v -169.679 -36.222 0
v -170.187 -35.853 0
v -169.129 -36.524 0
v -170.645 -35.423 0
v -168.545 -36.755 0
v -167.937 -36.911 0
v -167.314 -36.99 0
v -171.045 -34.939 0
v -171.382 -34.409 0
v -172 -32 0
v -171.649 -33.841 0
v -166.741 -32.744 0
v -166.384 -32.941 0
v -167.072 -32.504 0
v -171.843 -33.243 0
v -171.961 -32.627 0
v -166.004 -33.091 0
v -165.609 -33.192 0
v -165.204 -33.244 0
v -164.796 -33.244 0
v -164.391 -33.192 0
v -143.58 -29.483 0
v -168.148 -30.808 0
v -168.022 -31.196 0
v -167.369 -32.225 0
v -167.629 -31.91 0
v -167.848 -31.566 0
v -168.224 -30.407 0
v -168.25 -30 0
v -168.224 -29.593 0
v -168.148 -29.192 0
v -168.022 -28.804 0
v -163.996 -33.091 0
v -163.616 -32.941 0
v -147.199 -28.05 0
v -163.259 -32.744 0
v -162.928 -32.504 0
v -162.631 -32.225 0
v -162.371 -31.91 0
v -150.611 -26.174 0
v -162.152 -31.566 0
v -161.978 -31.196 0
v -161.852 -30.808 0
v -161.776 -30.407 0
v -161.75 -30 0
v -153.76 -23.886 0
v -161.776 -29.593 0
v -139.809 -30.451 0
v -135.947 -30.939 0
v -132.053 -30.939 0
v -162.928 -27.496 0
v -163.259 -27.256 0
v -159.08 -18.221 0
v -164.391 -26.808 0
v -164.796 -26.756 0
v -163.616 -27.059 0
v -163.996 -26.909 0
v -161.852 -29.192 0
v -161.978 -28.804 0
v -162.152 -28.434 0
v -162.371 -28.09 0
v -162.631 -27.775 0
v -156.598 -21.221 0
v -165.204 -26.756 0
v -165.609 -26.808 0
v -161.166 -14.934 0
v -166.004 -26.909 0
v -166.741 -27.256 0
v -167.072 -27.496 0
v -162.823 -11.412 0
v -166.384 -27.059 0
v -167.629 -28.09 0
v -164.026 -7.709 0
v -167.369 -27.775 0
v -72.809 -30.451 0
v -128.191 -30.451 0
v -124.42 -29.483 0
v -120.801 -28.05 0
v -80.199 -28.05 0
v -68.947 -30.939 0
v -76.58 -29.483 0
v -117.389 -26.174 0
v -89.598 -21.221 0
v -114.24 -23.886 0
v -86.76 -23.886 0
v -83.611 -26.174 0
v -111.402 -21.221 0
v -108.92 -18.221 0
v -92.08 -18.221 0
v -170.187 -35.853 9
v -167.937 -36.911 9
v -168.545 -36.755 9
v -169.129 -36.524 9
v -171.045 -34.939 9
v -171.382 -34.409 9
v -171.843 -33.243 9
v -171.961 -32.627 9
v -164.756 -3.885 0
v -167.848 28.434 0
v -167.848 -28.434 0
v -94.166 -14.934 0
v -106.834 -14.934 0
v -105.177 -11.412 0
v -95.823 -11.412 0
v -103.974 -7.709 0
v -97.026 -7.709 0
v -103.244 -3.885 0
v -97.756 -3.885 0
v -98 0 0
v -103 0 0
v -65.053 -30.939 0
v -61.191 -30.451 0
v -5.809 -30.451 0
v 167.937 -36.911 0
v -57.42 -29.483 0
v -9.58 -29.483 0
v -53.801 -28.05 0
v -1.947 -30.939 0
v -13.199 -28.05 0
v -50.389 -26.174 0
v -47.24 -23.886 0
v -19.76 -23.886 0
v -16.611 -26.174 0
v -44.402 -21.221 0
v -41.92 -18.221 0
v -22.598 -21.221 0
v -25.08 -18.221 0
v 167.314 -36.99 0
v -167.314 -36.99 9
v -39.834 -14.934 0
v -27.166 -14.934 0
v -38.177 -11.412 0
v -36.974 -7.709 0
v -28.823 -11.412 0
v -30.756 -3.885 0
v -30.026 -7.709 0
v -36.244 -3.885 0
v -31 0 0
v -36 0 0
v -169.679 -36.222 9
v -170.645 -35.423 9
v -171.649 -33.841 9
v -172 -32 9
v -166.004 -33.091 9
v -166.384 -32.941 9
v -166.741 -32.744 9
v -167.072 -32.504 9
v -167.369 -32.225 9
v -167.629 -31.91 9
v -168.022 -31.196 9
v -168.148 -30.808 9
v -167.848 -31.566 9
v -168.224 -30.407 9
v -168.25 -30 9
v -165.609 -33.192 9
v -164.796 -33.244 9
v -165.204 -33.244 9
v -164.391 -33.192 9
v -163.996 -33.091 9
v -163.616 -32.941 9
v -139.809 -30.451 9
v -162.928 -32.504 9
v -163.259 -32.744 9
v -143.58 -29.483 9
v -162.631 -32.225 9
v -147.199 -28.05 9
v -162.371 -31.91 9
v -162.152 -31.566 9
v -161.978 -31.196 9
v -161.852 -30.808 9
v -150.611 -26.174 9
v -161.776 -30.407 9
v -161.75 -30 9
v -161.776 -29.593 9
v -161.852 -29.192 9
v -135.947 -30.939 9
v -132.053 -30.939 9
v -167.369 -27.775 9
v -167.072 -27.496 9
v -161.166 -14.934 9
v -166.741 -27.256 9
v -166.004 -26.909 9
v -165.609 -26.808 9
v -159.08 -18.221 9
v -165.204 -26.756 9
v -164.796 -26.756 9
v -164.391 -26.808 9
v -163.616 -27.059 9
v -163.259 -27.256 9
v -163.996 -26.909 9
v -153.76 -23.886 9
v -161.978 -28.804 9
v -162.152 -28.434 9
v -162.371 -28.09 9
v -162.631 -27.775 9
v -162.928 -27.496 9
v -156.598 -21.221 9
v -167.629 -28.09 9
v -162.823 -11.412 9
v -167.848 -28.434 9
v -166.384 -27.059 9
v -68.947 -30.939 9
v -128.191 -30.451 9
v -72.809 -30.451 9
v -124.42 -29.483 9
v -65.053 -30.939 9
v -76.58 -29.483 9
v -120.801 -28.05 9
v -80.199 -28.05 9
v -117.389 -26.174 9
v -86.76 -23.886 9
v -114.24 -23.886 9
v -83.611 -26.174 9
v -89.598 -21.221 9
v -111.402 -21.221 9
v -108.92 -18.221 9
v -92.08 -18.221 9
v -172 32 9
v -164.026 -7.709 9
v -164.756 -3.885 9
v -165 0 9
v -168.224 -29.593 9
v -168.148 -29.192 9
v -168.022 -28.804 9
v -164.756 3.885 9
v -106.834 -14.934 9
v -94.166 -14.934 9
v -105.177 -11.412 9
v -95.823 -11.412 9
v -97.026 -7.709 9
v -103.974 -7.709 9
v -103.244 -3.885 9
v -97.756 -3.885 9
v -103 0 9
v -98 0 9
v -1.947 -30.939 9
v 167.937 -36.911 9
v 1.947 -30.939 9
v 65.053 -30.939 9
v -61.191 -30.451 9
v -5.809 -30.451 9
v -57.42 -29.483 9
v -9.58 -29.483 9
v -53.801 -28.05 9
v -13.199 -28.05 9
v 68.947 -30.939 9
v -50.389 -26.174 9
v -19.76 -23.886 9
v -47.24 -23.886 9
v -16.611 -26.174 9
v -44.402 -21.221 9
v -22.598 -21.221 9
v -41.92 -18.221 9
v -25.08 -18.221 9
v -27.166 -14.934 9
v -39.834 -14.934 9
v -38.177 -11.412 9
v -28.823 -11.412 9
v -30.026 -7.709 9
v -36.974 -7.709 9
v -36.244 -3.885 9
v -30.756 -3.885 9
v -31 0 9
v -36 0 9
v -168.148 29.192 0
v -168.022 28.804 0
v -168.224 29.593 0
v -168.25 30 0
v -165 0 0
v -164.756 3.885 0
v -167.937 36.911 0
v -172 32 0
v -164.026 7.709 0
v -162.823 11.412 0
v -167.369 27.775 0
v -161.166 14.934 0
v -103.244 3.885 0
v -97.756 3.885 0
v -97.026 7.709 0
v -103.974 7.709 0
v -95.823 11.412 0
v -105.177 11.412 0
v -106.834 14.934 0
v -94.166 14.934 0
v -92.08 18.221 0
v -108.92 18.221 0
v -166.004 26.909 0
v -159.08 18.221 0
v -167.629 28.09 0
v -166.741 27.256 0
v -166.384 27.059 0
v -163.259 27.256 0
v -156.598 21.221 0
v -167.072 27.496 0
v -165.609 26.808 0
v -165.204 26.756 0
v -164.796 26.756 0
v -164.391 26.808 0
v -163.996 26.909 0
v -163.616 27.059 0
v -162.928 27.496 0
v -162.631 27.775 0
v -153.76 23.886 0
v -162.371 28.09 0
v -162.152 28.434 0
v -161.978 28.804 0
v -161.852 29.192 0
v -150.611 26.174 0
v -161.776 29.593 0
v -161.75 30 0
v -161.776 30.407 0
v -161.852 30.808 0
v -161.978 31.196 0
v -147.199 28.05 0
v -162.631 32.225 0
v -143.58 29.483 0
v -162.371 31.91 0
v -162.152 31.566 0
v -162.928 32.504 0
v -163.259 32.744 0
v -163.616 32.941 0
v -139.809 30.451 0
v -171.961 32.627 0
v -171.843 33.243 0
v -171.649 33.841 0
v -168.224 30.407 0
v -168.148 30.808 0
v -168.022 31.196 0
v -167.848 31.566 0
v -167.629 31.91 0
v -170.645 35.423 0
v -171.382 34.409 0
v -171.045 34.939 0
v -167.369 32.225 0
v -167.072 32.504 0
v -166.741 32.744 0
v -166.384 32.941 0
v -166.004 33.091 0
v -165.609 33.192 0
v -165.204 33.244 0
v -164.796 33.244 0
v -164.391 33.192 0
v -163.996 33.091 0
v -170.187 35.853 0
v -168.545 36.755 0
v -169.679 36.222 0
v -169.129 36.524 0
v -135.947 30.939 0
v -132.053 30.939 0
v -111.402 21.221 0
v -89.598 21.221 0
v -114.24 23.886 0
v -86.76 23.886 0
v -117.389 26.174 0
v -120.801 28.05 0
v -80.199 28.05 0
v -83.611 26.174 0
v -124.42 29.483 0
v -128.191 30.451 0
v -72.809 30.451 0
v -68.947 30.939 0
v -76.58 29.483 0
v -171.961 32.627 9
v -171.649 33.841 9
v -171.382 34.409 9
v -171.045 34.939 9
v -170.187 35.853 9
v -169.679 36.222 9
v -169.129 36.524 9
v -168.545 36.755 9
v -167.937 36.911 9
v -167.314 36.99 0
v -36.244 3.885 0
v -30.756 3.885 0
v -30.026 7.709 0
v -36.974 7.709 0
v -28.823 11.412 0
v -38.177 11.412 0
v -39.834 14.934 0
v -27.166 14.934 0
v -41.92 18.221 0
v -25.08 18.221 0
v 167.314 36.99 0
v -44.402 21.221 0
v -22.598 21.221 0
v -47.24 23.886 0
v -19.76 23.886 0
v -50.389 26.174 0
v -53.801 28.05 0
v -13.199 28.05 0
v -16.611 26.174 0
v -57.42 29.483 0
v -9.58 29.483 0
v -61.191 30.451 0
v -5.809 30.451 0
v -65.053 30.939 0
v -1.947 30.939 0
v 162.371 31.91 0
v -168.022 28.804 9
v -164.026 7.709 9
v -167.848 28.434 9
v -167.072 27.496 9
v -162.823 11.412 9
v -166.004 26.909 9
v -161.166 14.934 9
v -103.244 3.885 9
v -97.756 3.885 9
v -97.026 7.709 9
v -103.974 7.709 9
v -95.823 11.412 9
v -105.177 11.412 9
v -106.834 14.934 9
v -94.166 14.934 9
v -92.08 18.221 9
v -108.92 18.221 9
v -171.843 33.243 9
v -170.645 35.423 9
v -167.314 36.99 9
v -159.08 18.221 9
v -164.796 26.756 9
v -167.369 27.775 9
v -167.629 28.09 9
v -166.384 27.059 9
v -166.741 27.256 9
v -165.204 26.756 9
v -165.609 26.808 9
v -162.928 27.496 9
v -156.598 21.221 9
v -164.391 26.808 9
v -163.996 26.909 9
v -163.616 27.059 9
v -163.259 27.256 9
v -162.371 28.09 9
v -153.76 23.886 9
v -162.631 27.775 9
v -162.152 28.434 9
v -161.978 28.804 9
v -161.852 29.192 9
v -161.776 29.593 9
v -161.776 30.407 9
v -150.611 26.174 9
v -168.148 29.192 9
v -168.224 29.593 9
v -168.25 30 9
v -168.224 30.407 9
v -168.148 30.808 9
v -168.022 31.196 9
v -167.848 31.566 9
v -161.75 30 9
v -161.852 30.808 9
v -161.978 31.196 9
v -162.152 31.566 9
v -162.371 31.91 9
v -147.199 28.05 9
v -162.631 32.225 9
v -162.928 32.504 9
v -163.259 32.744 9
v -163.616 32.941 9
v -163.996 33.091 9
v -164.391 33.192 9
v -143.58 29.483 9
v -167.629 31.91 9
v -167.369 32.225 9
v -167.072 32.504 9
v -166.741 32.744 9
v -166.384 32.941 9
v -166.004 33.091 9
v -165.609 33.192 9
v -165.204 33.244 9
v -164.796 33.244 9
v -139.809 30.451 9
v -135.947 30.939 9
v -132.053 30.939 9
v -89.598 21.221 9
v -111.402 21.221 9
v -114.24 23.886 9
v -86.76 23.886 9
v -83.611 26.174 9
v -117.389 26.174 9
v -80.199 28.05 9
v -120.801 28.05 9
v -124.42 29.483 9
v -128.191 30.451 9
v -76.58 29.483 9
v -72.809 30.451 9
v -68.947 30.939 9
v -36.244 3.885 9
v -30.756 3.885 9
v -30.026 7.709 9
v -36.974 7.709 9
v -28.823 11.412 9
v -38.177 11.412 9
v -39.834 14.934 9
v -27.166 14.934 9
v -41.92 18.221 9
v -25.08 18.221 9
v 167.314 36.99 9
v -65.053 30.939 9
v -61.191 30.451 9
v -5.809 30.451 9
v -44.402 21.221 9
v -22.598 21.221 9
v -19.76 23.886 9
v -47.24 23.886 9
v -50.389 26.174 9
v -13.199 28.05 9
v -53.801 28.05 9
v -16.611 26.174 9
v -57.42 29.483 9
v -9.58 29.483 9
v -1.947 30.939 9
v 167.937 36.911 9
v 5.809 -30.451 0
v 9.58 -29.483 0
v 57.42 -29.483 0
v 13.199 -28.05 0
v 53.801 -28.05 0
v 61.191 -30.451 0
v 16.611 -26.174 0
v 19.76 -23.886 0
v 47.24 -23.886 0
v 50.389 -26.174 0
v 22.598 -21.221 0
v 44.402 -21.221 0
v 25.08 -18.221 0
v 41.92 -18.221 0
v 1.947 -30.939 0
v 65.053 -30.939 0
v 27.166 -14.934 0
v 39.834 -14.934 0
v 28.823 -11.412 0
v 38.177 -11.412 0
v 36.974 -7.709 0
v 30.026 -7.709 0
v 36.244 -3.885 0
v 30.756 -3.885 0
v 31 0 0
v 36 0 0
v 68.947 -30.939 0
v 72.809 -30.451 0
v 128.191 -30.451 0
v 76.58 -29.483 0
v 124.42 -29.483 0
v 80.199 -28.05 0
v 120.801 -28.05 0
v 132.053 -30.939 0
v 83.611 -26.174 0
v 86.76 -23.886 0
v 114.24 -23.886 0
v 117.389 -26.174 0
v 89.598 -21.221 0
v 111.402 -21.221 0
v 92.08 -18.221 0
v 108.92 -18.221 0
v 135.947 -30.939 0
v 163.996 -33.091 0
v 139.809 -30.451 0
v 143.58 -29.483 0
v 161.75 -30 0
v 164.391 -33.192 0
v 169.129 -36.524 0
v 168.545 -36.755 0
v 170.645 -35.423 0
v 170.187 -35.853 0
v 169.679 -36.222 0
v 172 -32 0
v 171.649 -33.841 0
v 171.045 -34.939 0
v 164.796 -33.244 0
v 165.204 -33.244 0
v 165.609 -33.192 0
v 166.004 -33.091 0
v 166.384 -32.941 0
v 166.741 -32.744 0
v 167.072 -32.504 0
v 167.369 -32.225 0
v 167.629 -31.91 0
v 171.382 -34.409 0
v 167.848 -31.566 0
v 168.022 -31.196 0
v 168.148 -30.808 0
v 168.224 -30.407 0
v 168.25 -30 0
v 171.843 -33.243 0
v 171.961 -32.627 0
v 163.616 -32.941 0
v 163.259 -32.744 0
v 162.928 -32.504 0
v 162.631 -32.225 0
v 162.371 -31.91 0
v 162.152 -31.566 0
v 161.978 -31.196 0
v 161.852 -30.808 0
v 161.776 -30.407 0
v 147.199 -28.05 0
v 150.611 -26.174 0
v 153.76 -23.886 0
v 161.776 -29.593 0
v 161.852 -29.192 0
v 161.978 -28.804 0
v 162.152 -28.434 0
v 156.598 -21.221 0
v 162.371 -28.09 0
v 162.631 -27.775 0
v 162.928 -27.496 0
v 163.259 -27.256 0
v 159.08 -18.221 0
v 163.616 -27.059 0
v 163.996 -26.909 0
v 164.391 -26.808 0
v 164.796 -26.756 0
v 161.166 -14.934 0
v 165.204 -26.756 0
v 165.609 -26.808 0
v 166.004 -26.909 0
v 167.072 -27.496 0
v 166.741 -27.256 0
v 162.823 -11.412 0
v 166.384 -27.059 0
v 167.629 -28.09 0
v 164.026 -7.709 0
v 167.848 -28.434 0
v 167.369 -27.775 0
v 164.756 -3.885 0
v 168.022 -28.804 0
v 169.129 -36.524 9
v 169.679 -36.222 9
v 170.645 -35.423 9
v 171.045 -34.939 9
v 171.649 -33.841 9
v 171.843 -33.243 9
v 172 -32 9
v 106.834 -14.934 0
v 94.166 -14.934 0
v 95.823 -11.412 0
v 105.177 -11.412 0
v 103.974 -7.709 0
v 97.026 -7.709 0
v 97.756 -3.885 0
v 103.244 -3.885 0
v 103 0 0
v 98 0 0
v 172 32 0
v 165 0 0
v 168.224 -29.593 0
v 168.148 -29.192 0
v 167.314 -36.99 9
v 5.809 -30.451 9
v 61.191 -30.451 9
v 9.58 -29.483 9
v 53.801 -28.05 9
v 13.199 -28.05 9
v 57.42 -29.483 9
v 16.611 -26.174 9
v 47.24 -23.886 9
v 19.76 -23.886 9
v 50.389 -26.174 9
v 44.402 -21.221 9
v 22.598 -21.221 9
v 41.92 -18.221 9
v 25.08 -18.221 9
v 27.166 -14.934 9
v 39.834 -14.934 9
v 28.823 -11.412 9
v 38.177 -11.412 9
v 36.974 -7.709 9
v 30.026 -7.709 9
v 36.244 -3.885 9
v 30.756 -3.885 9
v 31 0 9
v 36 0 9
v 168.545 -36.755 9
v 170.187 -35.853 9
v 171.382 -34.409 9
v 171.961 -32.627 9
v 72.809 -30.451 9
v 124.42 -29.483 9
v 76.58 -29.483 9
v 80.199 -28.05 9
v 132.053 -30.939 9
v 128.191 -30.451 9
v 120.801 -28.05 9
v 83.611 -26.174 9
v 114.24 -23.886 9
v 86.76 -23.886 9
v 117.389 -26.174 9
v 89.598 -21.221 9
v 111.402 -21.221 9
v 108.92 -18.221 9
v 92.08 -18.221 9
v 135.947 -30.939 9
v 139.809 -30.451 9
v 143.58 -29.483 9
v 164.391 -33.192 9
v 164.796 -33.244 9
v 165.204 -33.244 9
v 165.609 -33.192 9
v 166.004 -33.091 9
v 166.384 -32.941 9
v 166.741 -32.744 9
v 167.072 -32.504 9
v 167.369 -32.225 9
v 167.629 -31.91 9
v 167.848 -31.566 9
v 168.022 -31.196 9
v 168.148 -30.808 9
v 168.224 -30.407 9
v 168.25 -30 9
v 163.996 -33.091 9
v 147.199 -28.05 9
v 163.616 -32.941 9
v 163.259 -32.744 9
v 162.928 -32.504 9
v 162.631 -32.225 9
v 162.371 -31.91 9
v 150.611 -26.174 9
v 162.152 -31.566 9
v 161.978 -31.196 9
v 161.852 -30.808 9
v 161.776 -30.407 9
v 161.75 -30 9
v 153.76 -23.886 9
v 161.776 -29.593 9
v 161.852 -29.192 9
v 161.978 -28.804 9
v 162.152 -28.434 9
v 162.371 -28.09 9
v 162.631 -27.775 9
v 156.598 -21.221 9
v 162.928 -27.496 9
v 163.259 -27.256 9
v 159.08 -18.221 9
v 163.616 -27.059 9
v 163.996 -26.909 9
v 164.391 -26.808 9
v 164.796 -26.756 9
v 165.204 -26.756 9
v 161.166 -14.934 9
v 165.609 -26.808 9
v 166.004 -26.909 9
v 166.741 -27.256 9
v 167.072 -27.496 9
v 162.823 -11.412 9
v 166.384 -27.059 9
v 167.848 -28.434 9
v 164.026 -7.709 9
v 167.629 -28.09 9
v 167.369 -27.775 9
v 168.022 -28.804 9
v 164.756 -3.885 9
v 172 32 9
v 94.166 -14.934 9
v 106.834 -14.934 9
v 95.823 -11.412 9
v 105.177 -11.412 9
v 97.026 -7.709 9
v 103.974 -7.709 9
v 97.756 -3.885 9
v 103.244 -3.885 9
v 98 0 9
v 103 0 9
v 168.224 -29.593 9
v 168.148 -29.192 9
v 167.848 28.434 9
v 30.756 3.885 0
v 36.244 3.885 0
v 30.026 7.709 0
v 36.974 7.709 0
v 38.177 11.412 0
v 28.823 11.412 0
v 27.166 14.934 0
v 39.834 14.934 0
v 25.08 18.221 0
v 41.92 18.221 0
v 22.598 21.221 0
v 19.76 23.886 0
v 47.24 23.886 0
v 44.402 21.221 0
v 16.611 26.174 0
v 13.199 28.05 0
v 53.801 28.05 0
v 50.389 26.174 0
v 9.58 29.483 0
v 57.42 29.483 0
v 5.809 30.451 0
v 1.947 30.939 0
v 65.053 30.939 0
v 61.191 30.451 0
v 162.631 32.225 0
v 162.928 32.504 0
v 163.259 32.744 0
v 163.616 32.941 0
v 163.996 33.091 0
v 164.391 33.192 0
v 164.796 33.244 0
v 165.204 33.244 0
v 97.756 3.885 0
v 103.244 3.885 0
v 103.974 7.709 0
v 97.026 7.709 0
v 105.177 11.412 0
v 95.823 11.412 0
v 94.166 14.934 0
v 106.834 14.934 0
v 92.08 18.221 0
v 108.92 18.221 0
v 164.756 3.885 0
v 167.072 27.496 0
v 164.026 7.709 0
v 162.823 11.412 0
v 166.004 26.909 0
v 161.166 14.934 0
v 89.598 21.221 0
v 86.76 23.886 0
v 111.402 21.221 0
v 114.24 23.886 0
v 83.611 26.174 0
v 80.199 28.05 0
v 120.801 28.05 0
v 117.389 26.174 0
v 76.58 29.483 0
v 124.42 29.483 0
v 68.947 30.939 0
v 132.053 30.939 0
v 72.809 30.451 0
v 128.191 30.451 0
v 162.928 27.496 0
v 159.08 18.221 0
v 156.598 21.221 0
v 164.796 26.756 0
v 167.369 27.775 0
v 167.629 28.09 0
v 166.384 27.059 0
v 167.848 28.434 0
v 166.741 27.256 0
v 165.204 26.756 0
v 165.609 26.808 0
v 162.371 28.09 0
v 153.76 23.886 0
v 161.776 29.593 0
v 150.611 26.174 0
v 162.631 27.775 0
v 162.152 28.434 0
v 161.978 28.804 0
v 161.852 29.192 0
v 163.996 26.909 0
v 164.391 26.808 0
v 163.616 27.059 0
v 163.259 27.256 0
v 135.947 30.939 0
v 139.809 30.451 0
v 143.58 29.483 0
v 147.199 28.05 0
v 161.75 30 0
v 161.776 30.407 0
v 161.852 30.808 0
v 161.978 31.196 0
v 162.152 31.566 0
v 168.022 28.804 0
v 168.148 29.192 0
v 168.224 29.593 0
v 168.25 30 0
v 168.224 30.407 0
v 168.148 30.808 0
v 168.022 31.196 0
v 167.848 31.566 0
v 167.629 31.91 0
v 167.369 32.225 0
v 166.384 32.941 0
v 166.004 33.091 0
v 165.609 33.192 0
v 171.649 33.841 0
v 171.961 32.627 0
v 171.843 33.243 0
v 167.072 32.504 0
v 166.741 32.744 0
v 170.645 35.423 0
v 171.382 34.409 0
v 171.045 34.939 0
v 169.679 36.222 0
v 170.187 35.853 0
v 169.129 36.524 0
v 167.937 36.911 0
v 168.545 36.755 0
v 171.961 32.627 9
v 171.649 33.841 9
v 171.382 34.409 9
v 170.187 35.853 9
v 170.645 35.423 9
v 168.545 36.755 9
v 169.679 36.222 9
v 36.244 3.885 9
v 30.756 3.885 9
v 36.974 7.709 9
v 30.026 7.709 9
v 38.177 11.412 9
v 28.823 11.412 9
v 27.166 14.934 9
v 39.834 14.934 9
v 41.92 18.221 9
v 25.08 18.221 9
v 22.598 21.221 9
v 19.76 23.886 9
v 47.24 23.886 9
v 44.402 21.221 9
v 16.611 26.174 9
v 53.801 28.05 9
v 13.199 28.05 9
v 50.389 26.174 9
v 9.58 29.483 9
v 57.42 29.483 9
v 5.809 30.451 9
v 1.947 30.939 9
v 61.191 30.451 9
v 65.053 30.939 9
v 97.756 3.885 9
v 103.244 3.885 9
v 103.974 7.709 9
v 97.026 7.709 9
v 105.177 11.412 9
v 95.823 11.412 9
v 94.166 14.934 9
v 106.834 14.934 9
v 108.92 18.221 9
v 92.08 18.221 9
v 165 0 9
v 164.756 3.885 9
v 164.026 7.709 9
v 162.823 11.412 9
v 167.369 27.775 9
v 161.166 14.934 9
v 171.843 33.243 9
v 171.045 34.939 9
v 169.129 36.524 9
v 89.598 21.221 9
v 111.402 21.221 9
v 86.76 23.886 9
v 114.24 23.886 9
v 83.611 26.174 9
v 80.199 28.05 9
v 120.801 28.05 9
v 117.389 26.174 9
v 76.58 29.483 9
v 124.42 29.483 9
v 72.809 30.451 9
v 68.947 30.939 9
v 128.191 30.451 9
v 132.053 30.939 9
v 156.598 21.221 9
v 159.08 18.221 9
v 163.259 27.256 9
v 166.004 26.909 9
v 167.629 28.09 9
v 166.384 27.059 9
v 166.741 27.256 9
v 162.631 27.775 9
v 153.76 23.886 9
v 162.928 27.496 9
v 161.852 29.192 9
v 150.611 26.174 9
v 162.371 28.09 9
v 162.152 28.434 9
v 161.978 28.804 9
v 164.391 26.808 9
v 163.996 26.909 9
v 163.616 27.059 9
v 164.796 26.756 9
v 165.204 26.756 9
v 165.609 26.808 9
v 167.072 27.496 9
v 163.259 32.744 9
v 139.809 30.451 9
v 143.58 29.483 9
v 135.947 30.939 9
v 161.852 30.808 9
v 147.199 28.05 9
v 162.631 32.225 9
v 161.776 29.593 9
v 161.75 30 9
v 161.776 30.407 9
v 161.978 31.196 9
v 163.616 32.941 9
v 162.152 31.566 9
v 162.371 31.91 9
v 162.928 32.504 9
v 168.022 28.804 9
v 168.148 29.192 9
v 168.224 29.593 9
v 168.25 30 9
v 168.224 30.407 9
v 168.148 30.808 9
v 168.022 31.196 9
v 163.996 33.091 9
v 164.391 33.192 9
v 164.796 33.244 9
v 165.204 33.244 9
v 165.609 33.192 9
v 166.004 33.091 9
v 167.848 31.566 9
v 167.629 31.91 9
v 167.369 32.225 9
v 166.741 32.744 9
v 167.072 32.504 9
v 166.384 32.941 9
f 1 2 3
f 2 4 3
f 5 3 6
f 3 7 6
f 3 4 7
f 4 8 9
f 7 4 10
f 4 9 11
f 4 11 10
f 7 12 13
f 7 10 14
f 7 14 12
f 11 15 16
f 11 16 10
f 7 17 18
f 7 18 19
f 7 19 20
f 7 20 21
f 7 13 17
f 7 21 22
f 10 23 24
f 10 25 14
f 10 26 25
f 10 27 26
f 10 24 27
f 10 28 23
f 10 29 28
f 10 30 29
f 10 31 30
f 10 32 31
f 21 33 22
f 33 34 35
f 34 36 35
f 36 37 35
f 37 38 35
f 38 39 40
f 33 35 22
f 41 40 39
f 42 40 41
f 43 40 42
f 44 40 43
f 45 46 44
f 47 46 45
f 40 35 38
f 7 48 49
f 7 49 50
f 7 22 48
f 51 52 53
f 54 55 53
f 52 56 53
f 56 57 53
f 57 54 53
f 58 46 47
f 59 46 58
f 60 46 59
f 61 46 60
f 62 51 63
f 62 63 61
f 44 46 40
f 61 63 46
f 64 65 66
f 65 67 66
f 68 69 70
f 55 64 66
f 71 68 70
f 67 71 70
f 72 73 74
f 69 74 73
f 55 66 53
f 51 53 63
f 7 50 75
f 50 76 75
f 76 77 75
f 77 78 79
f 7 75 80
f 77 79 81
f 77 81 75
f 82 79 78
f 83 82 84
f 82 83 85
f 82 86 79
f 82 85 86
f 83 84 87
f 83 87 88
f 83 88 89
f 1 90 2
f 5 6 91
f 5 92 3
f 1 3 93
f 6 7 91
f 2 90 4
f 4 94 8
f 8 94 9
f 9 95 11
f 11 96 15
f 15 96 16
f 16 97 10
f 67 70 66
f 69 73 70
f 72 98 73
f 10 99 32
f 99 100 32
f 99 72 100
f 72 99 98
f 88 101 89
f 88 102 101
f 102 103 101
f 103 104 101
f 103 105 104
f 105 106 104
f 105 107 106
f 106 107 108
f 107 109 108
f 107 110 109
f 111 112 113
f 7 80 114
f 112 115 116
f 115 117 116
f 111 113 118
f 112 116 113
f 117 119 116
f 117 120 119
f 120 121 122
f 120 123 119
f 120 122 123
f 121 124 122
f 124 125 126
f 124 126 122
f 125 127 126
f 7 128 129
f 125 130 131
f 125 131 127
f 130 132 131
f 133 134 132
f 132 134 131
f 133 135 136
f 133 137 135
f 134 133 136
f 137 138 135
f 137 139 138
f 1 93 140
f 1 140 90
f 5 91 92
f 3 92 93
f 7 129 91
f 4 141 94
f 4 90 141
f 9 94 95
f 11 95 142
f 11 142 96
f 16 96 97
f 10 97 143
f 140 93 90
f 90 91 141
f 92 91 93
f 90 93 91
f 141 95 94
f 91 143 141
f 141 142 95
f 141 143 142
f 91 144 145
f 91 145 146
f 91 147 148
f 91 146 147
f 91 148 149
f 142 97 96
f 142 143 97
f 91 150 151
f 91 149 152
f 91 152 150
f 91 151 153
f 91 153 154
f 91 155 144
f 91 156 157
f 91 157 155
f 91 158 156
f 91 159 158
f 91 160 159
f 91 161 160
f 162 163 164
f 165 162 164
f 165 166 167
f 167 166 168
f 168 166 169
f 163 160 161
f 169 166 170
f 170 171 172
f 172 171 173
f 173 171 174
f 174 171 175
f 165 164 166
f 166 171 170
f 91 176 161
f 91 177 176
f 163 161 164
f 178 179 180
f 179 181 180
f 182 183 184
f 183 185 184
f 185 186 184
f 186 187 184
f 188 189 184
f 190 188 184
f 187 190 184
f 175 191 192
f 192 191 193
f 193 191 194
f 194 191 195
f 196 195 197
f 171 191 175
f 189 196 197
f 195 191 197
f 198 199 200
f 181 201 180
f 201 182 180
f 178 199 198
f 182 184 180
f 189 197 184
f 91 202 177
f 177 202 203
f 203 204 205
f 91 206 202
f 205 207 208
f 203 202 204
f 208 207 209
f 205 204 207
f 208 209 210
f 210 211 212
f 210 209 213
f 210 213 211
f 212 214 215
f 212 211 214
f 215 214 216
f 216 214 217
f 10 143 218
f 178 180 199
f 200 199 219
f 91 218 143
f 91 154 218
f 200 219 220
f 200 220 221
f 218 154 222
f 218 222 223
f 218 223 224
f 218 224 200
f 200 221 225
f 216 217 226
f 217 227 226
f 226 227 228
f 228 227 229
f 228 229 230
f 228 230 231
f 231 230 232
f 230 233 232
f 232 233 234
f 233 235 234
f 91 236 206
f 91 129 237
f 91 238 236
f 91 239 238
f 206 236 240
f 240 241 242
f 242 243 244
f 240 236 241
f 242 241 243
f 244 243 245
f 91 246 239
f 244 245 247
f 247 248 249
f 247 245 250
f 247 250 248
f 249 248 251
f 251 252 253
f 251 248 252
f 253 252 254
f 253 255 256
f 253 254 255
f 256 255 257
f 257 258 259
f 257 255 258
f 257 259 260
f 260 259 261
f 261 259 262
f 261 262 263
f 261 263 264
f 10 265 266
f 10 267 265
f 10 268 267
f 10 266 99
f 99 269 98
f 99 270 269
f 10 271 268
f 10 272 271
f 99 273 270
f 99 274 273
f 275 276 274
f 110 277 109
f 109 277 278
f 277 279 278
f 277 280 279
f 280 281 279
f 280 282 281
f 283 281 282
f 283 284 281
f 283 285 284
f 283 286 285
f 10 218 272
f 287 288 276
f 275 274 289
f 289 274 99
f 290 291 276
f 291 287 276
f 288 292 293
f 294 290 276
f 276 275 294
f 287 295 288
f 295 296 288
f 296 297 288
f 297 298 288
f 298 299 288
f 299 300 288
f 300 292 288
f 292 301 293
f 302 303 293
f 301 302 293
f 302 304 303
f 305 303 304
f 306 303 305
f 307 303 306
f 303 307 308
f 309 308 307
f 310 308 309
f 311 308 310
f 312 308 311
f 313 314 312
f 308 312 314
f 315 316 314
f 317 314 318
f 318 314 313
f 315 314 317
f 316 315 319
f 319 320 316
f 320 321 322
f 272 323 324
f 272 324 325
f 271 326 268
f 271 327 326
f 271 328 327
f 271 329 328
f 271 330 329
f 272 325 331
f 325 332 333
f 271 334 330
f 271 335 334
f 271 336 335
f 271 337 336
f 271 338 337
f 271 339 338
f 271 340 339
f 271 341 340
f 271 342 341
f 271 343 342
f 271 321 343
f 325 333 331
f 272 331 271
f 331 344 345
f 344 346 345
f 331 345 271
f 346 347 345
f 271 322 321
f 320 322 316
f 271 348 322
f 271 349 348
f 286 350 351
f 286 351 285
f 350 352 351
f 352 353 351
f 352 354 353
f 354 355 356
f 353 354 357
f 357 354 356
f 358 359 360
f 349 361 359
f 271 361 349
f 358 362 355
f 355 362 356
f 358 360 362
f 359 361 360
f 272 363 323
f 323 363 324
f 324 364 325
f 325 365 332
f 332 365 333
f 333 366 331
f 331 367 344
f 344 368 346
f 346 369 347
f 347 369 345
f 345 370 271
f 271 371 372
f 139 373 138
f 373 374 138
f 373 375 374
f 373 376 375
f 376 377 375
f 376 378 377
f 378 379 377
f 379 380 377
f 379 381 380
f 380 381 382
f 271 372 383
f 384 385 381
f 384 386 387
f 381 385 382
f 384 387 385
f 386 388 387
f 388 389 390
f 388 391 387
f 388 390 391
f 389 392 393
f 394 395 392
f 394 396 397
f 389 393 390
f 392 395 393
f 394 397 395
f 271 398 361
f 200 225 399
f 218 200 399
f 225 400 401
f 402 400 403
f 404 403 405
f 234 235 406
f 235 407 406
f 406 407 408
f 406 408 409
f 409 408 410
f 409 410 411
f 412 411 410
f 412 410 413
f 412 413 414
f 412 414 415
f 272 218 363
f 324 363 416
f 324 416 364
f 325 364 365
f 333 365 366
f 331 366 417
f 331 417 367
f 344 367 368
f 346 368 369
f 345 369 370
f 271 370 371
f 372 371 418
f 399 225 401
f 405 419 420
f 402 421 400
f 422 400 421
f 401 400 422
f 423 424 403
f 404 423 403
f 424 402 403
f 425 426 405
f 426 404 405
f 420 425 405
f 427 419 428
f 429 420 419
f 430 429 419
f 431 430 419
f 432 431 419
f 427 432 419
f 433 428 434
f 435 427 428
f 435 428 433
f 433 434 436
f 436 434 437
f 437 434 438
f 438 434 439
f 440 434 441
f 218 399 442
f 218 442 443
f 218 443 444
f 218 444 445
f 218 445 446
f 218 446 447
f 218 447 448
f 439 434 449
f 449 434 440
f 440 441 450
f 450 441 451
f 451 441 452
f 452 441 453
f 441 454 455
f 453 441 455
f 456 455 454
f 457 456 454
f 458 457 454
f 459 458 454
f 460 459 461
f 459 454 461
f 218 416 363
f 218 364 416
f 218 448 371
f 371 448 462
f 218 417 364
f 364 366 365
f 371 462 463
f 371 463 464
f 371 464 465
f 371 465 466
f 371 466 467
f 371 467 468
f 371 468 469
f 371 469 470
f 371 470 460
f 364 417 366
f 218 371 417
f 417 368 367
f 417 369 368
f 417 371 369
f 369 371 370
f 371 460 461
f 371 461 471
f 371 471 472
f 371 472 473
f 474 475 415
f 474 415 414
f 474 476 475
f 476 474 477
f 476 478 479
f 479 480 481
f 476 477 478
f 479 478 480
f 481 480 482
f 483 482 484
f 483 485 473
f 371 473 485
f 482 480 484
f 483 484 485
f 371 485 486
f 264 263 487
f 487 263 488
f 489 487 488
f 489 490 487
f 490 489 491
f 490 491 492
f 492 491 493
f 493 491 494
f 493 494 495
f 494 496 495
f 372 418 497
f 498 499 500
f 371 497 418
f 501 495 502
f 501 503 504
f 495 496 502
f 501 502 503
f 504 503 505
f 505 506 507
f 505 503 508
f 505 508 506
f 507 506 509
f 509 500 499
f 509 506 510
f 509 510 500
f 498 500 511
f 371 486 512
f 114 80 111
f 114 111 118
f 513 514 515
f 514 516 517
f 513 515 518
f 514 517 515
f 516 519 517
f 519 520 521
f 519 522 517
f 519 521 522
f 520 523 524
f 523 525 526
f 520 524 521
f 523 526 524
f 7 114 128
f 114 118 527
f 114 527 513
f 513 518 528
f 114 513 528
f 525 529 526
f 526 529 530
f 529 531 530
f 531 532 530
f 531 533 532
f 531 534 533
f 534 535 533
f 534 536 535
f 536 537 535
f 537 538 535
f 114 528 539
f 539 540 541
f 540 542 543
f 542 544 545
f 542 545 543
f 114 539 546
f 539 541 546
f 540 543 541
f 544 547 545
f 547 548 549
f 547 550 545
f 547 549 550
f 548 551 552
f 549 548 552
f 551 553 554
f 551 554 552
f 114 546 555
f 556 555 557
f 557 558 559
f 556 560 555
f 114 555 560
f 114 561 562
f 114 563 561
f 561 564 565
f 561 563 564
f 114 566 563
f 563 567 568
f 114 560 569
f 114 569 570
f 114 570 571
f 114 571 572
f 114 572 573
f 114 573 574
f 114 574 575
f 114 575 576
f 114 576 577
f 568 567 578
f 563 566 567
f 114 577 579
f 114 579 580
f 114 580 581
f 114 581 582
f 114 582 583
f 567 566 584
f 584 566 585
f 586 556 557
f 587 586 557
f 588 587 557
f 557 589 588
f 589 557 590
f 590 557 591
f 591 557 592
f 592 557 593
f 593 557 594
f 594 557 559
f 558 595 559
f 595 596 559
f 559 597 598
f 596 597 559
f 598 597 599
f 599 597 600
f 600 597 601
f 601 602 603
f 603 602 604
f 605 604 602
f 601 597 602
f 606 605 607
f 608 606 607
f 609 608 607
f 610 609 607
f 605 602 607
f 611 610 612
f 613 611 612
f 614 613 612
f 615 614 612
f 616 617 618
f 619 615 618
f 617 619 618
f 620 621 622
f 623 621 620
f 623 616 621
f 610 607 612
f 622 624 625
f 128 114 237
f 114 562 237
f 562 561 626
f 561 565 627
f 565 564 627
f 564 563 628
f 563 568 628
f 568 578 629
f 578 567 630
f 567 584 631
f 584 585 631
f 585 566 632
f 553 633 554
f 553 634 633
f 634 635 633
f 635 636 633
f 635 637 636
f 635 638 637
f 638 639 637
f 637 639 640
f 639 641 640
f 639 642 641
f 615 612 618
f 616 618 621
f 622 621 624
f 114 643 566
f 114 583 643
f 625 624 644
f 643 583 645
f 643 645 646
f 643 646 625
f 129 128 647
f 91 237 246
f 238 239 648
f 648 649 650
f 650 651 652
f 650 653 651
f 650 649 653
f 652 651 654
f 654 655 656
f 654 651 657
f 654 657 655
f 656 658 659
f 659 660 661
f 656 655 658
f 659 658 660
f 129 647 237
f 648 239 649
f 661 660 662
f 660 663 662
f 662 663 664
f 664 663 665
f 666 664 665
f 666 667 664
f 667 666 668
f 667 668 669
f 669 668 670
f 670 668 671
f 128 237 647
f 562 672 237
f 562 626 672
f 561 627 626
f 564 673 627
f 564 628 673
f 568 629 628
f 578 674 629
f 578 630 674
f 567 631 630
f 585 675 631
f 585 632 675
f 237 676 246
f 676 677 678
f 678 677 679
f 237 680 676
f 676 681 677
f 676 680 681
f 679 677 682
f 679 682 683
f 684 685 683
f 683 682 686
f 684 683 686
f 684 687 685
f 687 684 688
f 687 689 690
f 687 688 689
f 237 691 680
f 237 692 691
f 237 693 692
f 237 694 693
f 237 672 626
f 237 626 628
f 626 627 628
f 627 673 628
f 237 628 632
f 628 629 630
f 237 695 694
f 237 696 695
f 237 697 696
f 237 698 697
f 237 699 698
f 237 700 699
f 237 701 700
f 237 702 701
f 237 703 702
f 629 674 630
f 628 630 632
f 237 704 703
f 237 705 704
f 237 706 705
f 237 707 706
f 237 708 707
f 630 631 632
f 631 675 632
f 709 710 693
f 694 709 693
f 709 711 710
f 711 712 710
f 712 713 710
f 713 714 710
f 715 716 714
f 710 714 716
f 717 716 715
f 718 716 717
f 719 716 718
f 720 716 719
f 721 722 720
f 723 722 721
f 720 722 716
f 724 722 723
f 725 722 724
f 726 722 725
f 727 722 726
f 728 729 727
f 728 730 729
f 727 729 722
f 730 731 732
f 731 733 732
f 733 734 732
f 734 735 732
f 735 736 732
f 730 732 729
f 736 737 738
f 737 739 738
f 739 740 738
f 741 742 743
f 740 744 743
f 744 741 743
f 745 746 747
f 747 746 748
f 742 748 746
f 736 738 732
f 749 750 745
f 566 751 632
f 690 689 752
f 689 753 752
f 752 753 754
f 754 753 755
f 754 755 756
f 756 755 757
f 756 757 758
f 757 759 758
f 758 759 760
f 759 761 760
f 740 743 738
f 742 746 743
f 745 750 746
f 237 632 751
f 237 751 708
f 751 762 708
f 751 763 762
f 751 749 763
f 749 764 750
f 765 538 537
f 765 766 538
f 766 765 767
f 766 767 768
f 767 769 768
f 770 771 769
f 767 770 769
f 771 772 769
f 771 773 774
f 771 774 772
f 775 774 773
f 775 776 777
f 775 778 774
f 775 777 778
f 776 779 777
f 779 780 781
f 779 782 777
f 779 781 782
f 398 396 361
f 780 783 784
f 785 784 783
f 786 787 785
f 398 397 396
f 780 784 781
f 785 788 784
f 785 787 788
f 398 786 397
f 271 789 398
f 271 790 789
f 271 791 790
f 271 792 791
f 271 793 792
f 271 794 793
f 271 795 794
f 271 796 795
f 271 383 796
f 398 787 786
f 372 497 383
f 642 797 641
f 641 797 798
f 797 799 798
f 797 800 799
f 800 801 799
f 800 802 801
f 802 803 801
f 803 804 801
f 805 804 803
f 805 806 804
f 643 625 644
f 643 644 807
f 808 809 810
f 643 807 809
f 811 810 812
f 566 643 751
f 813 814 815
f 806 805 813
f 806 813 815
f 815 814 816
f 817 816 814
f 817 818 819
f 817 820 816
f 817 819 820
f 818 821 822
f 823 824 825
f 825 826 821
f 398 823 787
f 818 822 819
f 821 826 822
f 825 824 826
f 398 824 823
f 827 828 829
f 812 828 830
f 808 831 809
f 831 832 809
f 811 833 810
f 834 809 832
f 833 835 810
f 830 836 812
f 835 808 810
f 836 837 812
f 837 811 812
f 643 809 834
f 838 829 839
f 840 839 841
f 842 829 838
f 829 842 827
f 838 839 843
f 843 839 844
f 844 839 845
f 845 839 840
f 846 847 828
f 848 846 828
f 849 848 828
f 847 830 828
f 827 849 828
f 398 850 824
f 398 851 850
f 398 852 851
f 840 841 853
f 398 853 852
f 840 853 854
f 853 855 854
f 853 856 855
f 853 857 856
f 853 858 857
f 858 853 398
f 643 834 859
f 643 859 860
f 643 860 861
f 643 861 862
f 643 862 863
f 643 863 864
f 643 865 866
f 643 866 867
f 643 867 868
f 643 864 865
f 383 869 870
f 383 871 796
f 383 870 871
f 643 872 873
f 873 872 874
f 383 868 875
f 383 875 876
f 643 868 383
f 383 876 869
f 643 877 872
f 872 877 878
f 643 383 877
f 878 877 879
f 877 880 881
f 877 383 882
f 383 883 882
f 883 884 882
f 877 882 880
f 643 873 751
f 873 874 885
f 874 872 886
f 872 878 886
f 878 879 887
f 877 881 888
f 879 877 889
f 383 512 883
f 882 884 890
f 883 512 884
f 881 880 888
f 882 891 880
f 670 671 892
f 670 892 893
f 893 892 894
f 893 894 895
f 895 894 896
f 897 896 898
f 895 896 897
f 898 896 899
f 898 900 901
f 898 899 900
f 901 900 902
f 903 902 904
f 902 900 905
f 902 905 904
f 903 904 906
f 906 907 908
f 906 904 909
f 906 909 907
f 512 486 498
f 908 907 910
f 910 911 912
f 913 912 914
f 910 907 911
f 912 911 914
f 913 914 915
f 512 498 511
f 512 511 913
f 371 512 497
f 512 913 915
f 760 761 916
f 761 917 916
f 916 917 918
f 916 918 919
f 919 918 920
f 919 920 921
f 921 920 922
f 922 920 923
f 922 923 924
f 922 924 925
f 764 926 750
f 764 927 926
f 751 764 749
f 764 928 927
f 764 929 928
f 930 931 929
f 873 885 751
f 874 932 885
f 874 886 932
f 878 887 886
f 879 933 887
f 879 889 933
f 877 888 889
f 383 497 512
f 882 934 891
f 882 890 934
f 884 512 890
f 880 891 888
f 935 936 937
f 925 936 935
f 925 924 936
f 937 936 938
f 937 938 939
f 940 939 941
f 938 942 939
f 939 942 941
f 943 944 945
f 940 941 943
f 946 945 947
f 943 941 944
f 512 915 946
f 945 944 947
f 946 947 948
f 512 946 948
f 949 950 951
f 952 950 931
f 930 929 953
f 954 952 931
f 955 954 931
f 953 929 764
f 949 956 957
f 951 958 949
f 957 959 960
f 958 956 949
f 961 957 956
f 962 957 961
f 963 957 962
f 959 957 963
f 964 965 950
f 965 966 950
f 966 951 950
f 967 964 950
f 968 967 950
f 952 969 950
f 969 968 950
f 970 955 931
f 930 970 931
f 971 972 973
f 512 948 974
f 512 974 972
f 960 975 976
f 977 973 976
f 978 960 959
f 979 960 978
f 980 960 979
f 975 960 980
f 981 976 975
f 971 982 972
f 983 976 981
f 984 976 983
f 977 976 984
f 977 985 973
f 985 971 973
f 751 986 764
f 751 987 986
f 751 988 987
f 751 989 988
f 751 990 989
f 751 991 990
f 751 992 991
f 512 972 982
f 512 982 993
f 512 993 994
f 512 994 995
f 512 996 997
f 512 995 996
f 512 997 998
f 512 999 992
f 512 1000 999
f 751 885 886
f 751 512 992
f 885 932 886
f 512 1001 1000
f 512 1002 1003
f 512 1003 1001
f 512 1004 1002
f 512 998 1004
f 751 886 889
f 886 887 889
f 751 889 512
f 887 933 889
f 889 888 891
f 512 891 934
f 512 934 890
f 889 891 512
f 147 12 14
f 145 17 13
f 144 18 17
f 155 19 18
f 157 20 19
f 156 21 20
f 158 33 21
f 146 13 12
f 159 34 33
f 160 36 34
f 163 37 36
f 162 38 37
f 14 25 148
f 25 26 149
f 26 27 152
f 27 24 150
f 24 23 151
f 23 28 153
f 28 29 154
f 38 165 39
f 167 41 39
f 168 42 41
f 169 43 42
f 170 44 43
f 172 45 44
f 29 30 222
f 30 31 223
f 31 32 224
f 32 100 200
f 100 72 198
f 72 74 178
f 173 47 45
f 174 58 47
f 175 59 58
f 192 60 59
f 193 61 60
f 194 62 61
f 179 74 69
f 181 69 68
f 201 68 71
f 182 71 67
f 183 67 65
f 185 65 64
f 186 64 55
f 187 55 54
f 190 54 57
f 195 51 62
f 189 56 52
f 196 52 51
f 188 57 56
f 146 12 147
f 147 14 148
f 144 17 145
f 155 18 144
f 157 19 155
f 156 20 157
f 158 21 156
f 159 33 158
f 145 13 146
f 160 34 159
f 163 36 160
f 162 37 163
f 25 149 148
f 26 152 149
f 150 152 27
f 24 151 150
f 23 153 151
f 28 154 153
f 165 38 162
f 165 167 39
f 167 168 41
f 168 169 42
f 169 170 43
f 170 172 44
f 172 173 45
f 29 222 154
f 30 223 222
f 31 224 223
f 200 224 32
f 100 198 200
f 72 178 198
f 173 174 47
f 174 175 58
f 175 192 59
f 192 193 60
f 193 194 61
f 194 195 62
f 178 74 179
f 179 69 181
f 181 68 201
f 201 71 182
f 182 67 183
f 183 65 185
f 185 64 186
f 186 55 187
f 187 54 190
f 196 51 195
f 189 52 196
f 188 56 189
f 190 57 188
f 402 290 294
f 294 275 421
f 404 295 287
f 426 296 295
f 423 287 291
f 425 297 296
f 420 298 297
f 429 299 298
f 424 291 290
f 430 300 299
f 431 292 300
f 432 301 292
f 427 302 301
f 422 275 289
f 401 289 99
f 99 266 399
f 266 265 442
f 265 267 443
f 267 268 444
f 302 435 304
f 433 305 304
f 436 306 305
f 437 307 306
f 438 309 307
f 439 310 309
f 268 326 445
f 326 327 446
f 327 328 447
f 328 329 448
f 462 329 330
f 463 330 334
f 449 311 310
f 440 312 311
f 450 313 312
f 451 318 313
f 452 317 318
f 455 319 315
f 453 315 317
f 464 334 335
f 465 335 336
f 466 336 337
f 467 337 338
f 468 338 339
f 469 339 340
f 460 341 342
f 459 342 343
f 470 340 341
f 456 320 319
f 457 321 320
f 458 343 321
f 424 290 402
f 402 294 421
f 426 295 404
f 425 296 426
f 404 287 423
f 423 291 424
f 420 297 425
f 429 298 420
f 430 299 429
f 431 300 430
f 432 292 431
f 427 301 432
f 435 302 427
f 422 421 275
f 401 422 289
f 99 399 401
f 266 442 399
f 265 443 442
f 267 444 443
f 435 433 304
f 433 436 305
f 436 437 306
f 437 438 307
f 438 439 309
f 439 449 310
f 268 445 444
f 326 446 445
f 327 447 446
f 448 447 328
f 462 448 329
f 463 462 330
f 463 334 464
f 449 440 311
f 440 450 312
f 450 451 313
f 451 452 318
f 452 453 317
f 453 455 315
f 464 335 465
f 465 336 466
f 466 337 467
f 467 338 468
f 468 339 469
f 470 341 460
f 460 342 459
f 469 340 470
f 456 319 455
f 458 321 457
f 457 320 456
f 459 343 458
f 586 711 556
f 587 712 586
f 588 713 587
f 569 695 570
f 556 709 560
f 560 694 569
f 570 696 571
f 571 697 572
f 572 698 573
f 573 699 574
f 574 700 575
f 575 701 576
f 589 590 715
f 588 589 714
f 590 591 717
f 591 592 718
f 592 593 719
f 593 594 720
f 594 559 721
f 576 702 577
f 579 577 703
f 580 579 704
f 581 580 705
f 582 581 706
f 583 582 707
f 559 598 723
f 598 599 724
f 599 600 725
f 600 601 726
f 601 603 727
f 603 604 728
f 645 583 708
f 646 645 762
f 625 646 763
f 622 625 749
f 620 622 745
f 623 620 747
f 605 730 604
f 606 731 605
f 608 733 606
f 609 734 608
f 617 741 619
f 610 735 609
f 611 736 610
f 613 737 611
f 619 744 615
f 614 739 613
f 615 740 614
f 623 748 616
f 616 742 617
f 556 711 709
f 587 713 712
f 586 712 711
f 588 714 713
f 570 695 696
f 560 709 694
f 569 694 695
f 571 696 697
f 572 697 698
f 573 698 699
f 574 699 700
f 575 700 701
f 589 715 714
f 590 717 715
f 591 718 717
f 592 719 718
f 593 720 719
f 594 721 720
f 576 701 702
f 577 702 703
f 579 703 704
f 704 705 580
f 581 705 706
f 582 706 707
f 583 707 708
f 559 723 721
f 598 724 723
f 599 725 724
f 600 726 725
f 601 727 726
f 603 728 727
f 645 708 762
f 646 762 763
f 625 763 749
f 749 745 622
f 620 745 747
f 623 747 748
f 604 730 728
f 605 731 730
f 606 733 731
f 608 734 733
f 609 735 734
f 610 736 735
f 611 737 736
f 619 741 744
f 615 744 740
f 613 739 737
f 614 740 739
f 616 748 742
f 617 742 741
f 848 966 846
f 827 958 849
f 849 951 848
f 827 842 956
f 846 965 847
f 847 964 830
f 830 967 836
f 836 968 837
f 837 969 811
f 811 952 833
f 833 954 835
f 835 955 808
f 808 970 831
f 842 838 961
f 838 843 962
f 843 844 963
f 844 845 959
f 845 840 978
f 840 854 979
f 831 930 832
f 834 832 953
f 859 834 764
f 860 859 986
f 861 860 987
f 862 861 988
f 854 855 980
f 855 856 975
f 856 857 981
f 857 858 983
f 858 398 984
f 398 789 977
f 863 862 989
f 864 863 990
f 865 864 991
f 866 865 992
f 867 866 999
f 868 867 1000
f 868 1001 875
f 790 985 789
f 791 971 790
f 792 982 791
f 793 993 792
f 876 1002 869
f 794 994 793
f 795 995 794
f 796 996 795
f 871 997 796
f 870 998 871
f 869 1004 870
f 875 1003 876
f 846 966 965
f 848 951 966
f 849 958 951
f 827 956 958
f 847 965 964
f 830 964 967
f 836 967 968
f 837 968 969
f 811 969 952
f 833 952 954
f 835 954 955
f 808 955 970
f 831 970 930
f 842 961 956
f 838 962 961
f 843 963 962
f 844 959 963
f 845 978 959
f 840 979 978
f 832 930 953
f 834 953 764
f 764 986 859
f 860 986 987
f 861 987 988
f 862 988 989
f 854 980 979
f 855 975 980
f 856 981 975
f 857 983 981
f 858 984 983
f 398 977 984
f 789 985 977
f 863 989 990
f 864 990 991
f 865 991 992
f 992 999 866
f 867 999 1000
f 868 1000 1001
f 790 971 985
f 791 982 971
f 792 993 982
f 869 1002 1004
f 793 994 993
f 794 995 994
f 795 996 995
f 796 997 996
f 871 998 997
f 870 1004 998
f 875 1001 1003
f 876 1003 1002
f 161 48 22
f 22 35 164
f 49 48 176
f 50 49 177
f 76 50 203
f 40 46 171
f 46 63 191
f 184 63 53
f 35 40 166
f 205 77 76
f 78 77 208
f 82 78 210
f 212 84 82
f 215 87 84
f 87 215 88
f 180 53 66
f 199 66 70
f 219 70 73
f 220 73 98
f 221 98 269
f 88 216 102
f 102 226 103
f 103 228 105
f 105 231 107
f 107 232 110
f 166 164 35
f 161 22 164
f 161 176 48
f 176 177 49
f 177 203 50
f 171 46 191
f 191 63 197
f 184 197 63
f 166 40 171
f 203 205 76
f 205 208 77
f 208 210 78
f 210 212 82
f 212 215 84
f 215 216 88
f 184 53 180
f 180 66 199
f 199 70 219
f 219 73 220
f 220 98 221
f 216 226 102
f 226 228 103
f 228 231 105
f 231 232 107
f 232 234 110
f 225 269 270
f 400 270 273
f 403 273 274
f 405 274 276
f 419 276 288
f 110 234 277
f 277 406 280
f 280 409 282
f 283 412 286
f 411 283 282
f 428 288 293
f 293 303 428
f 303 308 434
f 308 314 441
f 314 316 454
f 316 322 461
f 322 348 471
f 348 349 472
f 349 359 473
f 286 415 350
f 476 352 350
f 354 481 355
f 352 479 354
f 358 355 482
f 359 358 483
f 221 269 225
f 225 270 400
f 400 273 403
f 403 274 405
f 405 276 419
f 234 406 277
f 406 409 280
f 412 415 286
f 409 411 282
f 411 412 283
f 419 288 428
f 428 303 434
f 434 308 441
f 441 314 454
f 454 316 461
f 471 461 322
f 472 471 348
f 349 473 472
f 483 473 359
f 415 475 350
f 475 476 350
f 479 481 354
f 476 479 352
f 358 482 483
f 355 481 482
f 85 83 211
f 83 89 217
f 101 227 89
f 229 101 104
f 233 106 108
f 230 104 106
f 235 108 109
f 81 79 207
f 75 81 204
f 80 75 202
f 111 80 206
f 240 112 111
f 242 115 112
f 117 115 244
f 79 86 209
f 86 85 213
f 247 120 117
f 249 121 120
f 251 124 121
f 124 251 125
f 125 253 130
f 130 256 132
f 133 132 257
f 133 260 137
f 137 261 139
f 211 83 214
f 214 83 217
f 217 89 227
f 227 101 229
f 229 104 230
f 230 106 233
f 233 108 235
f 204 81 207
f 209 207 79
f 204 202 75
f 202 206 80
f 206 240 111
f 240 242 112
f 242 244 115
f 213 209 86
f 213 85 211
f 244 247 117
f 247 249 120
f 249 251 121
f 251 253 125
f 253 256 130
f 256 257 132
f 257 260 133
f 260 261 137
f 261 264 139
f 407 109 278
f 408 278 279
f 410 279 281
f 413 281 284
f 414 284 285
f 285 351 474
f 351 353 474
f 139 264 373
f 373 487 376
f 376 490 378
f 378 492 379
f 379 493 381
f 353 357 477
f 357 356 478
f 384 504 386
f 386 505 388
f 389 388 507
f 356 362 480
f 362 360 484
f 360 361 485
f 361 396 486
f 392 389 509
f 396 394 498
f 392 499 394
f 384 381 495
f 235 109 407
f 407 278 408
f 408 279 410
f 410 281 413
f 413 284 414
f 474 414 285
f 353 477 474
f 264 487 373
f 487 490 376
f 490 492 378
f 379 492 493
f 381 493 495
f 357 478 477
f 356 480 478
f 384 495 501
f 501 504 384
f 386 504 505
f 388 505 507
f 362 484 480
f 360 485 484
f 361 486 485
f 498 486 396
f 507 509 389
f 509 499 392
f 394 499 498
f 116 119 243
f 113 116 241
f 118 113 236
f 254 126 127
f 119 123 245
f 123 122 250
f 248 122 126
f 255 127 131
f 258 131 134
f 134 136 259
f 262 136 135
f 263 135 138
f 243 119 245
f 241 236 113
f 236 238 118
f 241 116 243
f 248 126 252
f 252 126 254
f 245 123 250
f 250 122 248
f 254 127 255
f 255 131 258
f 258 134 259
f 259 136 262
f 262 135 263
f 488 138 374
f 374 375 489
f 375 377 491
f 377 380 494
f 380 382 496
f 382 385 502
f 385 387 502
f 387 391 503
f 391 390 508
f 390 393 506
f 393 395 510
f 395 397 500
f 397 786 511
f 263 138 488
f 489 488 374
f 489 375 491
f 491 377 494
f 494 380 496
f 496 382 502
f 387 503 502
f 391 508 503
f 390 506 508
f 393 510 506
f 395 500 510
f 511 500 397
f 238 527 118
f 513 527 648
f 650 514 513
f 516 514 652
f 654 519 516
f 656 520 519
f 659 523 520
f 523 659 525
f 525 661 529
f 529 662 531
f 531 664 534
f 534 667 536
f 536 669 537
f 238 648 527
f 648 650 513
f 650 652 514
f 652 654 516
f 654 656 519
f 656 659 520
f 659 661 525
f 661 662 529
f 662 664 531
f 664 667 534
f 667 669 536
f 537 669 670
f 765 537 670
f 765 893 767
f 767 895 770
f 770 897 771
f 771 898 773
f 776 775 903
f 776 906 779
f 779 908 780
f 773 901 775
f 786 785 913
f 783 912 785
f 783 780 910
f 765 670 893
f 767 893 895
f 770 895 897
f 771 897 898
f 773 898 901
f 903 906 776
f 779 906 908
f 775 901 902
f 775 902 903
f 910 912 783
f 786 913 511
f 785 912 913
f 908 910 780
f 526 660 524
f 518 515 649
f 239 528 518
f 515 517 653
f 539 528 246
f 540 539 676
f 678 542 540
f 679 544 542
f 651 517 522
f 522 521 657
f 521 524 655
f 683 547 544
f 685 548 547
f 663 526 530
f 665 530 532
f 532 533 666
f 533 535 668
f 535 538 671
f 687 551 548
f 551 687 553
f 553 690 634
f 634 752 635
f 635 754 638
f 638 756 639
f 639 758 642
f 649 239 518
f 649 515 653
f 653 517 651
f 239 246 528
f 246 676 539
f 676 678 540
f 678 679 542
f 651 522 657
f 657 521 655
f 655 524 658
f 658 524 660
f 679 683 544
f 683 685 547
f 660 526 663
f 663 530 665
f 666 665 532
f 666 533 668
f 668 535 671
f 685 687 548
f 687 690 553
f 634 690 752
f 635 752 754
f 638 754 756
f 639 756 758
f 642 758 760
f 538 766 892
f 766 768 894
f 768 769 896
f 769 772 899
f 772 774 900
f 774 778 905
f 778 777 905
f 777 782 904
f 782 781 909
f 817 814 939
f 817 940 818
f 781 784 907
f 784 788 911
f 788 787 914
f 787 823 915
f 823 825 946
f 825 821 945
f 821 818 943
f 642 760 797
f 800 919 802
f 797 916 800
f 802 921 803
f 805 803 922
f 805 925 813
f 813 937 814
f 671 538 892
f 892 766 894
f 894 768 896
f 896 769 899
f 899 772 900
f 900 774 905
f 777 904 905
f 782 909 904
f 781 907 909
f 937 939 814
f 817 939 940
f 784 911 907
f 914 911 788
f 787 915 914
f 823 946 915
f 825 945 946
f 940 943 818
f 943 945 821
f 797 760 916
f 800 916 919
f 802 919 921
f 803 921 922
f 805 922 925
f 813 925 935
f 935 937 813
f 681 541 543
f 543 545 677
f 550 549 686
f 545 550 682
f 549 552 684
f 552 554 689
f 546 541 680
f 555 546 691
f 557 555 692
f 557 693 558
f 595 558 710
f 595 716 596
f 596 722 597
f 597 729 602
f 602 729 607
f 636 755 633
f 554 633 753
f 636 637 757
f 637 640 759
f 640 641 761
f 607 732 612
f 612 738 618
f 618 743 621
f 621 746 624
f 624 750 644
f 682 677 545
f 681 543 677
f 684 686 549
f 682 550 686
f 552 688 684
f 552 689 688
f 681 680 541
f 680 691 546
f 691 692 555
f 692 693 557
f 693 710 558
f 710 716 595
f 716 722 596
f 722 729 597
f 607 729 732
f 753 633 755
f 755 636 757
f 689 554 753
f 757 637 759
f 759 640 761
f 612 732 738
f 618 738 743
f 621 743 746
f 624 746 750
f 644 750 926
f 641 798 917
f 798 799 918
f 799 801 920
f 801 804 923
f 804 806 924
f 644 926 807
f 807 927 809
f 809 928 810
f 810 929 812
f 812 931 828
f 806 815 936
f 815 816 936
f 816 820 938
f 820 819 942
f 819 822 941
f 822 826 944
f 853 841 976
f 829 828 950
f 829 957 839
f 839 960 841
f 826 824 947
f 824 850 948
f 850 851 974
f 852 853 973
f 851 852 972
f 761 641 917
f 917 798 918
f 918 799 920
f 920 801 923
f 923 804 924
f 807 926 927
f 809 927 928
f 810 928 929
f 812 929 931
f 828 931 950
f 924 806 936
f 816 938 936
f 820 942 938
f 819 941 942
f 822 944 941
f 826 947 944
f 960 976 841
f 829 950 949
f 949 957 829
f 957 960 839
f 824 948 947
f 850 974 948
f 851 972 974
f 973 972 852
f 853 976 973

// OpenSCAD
$fn = 50;

difference() {
	union() {
		hull() {
			translate(v = [-167.0, 32.0, 0]) {
				cylinder(h = 9, r = 5);
			}
			translate(v = [167.0, 32.0, 0]) {
				cylinder(h = 9, r = 5);
			}
			translate(v = [-167.0, -32.0, 0]) {
				cylinder(h = 9, r = 5);
			}
			translate(v = [167.0, -32.0, 0]) {
				cylinder(h = 9, r = 5);
			}
		}
	}
	union() {
		translate(v = [-165.0, -30.0, -100.0]) {
			cylinder(h = 200, r = 3.25);
		}
		translate(v = [-165.0, 30.0, -100.0]) {
			cylinder(h = 200, r = 3.25);
		}
		translate(v = [165.0, -30.0, -100.0]) {
			cylinder(h = 200, r = 3.25);
		}
		translate(v = [165.0, 30.0, -100.0]) {
			cylinder(h = 200, r = 3.25);
		}
		translate(v = [-165.0, -30.0, -100.0]) {
			cylinder(h = 200, r = 1.8);
		}
		translate(v = [-165.0, 30.0, -100.0]) {
			cylinder(h = 200, r = 1.8);
		}
		translate(v = [165.0, -30.0, -100.0]) {
			cylinder(h = 200, r = 1.8);
		}
		translate(v = [165.0, 30.0, -100.0]) {
			cylinder(h = 200, r = 1.8);
		}
		translate(v = [-134.0, 0, 0.0]) {
			cylinder(h = 9, r = 31.0);
		}
		translate(v = [-67.0, 0, 0.0]) {
			cylinder(h = 9, r = 31.0);
		}
		cylinder(h = 9, r = 31.0);
		translate(v = [67.0, 0, 0.0]) {
			cylinder(h = 9, r = 31.0);
		}
		translate(v = [134.0, 0, 0.0]) {
			cylinder(h = 9, r = 31.0);
		}
	}
}
